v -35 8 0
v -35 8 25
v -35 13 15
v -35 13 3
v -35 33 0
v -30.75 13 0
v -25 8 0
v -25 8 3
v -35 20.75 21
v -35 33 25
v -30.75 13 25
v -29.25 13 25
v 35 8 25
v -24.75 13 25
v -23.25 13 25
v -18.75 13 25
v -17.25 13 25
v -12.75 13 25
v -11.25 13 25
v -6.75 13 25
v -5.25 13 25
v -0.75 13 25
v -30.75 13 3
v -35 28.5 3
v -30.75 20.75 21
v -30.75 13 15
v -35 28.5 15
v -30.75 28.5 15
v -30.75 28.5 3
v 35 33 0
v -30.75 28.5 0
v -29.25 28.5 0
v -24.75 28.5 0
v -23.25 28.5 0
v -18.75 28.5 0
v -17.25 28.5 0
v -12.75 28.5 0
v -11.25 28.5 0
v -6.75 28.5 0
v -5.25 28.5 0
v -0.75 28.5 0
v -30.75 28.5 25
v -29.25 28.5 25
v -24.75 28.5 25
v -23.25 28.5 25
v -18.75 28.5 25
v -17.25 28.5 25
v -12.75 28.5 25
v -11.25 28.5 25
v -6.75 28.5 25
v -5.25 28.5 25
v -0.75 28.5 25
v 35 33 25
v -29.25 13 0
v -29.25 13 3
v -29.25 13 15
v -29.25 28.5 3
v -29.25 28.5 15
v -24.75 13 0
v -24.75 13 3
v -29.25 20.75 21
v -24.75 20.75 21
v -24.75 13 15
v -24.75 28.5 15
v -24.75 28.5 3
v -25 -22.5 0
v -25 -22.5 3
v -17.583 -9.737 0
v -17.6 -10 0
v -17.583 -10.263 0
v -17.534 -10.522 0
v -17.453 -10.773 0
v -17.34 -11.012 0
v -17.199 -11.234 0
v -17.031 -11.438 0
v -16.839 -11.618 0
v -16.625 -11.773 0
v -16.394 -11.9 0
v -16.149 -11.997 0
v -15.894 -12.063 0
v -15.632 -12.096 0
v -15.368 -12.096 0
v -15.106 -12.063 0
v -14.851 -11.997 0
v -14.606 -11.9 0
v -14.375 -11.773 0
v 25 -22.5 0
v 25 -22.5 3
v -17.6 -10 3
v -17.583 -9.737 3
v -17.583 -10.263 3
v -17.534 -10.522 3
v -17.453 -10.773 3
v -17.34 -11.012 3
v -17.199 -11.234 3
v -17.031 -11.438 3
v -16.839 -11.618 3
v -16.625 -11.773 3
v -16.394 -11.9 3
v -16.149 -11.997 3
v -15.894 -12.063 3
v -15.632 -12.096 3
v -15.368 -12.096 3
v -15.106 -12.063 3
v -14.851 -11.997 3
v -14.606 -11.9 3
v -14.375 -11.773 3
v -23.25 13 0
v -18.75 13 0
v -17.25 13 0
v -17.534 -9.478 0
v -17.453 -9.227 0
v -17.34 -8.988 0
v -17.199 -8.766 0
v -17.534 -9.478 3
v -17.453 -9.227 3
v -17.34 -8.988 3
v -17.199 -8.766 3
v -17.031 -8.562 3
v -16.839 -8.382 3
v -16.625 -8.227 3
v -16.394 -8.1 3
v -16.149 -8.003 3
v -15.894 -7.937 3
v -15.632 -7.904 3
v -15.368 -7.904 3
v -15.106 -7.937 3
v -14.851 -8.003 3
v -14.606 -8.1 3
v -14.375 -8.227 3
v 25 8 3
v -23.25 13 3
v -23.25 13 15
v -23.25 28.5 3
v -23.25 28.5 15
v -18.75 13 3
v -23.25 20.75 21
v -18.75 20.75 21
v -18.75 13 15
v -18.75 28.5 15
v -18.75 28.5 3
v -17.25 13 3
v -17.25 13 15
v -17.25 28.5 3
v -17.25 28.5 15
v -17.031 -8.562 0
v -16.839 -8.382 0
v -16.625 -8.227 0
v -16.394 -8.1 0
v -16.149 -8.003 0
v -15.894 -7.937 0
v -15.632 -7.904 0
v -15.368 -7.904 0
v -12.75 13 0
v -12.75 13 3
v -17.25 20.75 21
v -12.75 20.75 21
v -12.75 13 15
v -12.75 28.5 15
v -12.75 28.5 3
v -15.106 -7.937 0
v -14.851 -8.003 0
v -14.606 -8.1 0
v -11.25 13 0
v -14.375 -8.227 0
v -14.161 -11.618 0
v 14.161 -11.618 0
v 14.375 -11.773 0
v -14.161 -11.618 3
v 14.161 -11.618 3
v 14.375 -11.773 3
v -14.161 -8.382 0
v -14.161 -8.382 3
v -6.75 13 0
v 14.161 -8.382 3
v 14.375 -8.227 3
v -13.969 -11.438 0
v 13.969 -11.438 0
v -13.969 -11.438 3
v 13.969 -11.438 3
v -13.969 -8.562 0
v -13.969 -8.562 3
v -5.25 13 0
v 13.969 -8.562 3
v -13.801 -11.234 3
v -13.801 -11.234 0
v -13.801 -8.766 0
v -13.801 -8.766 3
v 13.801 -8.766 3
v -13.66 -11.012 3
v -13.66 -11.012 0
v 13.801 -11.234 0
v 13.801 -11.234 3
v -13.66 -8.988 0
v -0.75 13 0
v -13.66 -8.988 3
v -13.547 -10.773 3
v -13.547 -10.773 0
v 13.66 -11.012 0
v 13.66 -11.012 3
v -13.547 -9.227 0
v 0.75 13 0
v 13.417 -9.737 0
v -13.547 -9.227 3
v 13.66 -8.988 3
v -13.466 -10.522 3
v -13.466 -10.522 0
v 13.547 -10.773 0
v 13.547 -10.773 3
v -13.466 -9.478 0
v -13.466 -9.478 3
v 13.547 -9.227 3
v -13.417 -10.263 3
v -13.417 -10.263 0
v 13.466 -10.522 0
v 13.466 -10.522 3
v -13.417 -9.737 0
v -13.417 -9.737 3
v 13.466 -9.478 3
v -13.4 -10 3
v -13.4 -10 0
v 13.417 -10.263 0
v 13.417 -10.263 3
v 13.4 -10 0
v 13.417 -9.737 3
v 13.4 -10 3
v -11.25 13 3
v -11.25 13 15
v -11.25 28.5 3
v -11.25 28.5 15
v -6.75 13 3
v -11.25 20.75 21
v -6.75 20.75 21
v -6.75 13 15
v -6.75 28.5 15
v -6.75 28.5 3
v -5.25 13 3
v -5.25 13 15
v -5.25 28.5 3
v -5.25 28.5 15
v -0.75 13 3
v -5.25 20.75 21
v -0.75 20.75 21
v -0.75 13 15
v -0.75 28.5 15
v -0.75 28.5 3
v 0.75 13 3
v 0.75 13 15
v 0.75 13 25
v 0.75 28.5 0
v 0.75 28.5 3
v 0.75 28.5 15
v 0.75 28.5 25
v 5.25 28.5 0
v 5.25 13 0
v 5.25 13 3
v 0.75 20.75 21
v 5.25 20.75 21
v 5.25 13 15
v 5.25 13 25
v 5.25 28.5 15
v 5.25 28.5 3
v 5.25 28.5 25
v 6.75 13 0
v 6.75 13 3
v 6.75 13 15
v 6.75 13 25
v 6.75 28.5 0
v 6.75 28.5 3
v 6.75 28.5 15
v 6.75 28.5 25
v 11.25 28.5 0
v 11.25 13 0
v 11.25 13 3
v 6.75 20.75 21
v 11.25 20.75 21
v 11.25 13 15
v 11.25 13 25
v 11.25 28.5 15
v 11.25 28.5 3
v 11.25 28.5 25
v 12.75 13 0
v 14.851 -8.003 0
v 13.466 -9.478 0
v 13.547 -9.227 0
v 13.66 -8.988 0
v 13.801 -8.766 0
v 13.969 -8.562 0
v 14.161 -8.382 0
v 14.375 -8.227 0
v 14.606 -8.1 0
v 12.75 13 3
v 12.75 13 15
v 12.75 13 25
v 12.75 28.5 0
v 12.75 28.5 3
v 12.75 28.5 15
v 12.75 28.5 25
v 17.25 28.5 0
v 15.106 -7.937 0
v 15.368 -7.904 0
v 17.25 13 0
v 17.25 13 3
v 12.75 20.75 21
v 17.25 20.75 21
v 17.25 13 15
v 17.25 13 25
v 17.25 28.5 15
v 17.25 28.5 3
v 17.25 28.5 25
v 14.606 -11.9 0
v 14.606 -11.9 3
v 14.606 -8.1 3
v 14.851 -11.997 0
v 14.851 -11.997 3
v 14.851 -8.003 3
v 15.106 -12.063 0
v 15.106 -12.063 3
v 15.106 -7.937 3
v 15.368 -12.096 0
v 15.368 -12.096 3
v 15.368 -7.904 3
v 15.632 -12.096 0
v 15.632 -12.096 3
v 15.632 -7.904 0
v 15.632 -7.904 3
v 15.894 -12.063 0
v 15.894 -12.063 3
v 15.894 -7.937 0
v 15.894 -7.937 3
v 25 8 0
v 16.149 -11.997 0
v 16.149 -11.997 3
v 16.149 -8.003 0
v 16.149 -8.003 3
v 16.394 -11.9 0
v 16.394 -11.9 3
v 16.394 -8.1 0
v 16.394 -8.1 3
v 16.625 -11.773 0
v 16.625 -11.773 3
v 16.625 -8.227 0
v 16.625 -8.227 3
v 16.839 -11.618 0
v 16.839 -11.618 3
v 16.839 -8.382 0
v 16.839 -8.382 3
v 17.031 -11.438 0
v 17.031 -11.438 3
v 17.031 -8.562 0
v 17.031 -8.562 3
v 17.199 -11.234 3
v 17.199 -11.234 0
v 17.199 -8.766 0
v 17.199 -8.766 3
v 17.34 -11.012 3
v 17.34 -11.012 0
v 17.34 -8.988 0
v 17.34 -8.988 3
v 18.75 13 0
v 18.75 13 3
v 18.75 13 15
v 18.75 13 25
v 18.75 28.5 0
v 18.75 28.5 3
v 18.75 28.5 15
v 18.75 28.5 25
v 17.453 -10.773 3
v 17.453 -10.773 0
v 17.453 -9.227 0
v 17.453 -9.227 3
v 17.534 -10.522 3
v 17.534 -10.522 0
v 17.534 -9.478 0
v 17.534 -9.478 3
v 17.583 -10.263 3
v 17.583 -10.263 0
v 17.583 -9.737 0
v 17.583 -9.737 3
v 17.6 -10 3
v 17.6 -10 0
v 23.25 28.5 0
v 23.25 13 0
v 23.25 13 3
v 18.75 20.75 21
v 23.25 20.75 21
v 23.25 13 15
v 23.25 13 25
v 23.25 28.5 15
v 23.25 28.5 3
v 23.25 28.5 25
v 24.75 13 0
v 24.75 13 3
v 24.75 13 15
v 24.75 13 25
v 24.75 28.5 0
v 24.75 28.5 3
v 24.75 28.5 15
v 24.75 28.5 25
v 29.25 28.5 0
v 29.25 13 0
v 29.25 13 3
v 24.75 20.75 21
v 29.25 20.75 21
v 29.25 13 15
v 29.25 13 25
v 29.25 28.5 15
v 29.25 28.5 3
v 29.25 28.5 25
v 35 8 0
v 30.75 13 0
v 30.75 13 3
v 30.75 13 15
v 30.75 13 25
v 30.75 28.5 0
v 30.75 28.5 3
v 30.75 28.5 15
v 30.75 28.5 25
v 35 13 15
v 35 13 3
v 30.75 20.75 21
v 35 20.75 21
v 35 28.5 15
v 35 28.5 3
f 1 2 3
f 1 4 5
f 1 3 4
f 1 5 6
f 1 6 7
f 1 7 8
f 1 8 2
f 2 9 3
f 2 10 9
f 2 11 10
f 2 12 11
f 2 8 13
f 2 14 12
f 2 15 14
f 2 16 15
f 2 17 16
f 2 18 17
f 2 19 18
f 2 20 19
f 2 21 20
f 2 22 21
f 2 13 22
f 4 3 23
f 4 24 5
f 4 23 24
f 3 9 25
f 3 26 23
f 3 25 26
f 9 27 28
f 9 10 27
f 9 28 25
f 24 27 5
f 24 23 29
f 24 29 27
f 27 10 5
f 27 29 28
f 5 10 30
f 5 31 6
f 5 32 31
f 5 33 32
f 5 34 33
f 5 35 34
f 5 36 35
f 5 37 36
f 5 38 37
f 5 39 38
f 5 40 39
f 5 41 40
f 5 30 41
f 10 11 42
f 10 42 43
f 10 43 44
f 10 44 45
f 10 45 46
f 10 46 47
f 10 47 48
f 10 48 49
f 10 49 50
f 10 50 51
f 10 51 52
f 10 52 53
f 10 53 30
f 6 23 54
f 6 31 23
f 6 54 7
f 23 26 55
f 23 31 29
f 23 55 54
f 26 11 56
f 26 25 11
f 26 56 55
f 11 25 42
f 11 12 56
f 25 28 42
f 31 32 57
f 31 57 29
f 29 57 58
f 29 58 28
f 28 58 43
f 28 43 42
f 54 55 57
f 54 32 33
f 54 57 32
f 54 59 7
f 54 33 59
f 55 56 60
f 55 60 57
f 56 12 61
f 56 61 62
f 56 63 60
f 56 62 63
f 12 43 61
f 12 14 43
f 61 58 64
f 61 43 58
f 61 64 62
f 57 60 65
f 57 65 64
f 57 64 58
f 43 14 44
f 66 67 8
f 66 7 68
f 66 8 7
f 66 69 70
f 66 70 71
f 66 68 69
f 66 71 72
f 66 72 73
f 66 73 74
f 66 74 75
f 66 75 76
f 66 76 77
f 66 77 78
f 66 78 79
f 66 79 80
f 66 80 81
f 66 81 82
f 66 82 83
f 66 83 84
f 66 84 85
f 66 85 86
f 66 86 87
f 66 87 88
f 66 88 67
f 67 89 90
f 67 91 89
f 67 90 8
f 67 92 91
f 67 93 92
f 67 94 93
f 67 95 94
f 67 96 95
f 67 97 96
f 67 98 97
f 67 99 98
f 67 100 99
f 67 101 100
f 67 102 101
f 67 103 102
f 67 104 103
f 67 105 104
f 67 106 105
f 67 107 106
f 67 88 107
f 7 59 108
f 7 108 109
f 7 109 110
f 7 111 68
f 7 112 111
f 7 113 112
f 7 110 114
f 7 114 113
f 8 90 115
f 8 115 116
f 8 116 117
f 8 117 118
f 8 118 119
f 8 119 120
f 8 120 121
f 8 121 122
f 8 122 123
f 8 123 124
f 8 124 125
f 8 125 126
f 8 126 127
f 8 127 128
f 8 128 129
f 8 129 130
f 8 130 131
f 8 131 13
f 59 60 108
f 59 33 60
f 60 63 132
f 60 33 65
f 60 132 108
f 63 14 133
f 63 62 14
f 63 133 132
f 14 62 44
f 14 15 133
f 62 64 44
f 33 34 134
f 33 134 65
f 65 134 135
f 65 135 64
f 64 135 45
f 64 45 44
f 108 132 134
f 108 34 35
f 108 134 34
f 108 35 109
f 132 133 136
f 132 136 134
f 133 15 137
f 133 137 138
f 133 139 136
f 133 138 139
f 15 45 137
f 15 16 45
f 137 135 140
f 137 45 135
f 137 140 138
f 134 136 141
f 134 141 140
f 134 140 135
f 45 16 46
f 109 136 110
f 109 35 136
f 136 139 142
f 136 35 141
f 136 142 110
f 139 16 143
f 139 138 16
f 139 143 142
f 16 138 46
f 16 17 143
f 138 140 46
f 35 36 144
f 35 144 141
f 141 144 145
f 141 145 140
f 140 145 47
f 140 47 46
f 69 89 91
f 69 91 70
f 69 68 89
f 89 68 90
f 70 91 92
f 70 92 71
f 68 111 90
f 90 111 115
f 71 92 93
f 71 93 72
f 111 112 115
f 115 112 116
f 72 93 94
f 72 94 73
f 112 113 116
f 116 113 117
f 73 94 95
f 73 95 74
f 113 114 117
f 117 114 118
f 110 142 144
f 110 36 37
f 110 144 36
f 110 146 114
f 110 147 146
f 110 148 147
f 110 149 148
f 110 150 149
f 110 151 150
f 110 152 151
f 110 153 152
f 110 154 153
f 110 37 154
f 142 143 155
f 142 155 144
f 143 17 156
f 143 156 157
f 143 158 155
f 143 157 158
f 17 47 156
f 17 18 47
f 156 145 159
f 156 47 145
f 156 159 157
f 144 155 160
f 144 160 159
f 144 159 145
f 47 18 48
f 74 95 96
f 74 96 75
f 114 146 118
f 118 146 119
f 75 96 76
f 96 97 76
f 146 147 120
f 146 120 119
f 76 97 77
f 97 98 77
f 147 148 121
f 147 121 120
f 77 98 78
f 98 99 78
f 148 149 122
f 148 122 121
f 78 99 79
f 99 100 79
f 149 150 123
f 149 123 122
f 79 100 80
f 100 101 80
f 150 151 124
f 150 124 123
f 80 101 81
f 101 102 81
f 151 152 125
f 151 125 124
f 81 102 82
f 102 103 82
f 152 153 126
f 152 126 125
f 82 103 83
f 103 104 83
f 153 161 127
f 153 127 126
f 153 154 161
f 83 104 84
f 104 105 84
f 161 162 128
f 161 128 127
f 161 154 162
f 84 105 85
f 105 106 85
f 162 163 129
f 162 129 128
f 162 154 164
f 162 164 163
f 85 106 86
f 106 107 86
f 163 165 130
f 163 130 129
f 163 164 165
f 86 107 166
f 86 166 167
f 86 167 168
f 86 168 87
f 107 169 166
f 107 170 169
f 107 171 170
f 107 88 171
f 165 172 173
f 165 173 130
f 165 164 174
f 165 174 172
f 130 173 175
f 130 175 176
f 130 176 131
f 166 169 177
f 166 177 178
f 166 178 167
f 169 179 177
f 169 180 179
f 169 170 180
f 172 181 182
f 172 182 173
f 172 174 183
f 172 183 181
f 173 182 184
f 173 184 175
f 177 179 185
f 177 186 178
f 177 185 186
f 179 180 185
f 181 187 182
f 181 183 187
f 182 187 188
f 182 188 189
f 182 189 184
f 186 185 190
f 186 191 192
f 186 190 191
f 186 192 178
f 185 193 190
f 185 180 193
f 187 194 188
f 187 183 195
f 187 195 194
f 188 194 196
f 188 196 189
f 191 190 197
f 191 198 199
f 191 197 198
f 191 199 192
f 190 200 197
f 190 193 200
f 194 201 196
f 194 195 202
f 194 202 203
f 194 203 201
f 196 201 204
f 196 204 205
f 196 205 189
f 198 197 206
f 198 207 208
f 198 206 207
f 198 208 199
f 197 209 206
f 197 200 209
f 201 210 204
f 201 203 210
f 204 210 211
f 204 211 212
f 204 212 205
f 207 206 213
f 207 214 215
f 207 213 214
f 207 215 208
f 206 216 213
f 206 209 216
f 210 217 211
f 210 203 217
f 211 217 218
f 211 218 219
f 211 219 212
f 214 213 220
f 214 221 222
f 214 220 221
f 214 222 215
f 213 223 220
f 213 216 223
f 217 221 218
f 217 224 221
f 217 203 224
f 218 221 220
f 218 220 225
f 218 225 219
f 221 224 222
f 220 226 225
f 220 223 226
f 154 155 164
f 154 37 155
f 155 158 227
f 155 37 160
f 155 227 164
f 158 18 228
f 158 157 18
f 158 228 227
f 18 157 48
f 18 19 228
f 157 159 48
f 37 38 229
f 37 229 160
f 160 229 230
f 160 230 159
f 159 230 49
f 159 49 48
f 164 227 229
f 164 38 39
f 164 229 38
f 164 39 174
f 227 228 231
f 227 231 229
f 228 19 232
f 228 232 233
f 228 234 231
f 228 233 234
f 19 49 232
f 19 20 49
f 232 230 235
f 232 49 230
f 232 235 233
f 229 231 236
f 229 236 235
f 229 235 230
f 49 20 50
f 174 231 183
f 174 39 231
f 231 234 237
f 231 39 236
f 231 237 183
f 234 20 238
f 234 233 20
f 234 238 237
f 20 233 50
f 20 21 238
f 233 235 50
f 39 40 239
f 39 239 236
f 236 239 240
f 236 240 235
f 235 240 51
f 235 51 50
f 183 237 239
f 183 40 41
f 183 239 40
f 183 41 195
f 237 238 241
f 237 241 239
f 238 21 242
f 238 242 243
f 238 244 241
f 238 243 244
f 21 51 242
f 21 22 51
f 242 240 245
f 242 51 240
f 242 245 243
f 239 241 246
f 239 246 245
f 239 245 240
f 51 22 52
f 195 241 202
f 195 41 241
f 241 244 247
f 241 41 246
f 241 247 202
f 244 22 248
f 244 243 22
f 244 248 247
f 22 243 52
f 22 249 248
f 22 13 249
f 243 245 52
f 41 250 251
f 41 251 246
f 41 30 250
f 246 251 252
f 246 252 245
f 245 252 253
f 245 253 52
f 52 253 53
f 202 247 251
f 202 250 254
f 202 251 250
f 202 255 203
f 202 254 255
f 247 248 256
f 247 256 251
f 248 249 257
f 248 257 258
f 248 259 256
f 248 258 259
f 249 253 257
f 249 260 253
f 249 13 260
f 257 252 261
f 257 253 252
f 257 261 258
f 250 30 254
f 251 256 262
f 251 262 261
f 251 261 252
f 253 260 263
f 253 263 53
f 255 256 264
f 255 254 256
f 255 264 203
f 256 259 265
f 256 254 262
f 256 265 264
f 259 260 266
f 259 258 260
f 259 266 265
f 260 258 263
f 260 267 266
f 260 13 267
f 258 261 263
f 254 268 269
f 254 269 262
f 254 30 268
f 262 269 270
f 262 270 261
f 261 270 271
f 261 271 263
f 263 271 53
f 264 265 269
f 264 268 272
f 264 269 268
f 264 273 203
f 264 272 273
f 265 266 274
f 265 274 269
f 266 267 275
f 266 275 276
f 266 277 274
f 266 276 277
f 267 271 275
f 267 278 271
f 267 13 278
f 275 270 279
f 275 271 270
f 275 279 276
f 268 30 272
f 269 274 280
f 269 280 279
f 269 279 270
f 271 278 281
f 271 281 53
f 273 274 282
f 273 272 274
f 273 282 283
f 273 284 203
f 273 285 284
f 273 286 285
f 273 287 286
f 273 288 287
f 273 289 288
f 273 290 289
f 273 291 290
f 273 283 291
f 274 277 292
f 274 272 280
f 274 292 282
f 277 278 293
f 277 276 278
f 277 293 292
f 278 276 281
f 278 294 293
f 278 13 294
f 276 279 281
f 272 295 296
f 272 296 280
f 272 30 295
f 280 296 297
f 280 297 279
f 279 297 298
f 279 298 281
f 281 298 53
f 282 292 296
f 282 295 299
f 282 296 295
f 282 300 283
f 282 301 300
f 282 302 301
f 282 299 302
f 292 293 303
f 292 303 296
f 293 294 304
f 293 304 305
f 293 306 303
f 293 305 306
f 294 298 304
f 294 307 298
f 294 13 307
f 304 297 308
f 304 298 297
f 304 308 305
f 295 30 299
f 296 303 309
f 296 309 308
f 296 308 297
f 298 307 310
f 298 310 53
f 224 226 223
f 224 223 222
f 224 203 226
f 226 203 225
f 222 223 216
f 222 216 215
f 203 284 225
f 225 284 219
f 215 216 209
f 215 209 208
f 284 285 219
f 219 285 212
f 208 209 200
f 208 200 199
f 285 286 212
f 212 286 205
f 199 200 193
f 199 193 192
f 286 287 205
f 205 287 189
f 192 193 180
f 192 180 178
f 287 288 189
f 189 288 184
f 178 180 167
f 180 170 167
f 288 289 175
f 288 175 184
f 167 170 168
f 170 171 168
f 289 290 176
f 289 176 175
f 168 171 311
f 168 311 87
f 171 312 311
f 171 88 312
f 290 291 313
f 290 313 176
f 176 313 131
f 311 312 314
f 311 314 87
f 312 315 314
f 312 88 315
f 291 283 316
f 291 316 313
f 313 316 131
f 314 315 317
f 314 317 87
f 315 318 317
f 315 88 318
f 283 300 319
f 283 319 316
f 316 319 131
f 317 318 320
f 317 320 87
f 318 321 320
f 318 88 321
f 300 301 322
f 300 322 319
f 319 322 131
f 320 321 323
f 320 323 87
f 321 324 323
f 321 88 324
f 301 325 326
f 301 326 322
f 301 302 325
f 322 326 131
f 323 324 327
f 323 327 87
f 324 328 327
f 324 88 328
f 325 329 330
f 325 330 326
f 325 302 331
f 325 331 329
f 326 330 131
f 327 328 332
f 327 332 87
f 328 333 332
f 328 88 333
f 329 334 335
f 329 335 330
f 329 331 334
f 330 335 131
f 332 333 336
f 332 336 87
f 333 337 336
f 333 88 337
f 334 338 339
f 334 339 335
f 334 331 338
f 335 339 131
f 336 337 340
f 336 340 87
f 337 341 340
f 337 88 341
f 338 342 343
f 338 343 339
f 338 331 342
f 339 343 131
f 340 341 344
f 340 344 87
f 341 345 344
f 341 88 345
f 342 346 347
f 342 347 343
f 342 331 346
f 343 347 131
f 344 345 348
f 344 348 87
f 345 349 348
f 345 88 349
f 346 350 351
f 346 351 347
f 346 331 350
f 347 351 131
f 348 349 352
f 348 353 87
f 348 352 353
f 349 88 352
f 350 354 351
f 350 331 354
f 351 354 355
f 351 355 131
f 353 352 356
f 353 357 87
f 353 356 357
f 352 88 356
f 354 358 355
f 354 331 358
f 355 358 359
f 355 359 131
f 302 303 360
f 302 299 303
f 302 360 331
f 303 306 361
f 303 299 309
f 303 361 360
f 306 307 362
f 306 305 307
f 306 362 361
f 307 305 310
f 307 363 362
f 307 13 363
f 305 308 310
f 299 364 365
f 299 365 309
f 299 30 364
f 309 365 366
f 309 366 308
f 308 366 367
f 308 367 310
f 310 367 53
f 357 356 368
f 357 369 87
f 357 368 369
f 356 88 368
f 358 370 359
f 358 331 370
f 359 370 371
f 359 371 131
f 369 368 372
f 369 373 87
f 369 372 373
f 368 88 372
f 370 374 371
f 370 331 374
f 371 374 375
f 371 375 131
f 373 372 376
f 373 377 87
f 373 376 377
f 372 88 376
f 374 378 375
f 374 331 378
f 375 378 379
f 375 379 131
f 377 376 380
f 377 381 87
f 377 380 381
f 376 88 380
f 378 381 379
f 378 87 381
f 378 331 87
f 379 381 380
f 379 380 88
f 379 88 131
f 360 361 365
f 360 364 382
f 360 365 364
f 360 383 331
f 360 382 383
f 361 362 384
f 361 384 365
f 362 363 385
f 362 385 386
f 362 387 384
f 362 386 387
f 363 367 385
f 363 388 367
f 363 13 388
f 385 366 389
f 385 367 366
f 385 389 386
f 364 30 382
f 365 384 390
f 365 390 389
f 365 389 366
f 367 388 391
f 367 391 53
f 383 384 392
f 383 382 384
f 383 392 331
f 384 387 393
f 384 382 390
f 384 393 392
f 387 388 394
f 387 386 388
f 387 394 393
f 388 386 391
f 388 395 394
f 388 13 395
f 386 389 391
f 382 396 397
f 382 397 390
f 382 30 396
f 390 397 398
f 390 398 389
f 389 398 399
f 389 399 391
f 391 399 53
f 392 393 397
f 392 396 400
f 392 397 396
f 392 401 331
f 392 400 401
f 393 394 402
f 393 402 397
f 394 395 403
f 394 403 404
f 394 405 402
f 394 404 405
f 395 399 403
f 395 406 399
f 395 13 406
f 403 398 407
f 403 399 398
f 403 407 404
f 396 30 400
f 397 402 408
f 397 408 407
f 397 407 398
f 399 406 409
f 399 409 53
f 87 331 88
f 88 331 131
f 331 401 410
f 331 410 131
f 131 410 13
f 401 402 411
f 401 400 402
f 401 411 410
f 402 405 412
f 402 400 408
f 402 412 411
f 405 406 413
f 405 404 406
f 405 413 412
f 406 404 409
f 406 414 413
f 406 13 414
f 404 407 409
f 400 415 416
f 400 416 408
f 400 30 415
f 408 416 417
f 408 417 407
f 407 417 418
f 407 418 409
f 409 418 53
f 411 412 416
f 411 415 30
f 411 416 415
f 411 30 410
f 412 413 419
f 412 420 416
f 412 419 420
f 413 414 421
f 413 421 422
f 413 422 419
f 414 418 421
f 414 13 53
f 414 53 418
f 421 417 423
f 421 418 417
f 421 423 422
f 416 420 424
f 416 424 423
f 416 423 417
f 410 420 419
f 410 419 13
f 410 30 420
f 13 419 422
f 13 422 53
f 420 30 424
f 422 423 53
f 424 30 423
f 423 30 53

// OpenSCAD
$fn = 50;
thickness = 3;
distance = 15.5;
holder_position = 13;
honder_height = 6;
slit_y = 15.5;

// 本体
module body(){

	// 板
	translate([0, 0, thickness / 2]){

		cube([50, 45, thickness], center = true);

	}

	translate([-70/2, 10.5 - 2.5, 0]){

		cube([70, 25, 25]);

	}

}

// ネジ穴
module screw_hole(){

	for(ty = [-distance:distance * 2:distance]){

		translate([ty, -10, -5]){

			cylinder(h = 10, r = 2.1);

		}
	
	}

}

// 空洞
module cavity(){

	// 座標
	points = [
		
		[0, 0],
		[0, 15.5],
		[12, 15.5],
		[12 / 2 * 3, 15.5 / 2],
		[12, 0]

	];

	translate([70/2, holder_position, thickness]){

		rotate([0, -90, 0]){

			#linear_extrude(70)
				polygon(points);

		}

	}

}

// スリット
module slit(){

	for(tx = [-30:6:30]){

		translate([tx, holder_position + slit_y / 2, 10]){

			#cube([1.5, slit_y, 50], center = true);

		}

	}

}

difference(){

	body();
	screw_hole();
	cavity();
 	slit();

}
